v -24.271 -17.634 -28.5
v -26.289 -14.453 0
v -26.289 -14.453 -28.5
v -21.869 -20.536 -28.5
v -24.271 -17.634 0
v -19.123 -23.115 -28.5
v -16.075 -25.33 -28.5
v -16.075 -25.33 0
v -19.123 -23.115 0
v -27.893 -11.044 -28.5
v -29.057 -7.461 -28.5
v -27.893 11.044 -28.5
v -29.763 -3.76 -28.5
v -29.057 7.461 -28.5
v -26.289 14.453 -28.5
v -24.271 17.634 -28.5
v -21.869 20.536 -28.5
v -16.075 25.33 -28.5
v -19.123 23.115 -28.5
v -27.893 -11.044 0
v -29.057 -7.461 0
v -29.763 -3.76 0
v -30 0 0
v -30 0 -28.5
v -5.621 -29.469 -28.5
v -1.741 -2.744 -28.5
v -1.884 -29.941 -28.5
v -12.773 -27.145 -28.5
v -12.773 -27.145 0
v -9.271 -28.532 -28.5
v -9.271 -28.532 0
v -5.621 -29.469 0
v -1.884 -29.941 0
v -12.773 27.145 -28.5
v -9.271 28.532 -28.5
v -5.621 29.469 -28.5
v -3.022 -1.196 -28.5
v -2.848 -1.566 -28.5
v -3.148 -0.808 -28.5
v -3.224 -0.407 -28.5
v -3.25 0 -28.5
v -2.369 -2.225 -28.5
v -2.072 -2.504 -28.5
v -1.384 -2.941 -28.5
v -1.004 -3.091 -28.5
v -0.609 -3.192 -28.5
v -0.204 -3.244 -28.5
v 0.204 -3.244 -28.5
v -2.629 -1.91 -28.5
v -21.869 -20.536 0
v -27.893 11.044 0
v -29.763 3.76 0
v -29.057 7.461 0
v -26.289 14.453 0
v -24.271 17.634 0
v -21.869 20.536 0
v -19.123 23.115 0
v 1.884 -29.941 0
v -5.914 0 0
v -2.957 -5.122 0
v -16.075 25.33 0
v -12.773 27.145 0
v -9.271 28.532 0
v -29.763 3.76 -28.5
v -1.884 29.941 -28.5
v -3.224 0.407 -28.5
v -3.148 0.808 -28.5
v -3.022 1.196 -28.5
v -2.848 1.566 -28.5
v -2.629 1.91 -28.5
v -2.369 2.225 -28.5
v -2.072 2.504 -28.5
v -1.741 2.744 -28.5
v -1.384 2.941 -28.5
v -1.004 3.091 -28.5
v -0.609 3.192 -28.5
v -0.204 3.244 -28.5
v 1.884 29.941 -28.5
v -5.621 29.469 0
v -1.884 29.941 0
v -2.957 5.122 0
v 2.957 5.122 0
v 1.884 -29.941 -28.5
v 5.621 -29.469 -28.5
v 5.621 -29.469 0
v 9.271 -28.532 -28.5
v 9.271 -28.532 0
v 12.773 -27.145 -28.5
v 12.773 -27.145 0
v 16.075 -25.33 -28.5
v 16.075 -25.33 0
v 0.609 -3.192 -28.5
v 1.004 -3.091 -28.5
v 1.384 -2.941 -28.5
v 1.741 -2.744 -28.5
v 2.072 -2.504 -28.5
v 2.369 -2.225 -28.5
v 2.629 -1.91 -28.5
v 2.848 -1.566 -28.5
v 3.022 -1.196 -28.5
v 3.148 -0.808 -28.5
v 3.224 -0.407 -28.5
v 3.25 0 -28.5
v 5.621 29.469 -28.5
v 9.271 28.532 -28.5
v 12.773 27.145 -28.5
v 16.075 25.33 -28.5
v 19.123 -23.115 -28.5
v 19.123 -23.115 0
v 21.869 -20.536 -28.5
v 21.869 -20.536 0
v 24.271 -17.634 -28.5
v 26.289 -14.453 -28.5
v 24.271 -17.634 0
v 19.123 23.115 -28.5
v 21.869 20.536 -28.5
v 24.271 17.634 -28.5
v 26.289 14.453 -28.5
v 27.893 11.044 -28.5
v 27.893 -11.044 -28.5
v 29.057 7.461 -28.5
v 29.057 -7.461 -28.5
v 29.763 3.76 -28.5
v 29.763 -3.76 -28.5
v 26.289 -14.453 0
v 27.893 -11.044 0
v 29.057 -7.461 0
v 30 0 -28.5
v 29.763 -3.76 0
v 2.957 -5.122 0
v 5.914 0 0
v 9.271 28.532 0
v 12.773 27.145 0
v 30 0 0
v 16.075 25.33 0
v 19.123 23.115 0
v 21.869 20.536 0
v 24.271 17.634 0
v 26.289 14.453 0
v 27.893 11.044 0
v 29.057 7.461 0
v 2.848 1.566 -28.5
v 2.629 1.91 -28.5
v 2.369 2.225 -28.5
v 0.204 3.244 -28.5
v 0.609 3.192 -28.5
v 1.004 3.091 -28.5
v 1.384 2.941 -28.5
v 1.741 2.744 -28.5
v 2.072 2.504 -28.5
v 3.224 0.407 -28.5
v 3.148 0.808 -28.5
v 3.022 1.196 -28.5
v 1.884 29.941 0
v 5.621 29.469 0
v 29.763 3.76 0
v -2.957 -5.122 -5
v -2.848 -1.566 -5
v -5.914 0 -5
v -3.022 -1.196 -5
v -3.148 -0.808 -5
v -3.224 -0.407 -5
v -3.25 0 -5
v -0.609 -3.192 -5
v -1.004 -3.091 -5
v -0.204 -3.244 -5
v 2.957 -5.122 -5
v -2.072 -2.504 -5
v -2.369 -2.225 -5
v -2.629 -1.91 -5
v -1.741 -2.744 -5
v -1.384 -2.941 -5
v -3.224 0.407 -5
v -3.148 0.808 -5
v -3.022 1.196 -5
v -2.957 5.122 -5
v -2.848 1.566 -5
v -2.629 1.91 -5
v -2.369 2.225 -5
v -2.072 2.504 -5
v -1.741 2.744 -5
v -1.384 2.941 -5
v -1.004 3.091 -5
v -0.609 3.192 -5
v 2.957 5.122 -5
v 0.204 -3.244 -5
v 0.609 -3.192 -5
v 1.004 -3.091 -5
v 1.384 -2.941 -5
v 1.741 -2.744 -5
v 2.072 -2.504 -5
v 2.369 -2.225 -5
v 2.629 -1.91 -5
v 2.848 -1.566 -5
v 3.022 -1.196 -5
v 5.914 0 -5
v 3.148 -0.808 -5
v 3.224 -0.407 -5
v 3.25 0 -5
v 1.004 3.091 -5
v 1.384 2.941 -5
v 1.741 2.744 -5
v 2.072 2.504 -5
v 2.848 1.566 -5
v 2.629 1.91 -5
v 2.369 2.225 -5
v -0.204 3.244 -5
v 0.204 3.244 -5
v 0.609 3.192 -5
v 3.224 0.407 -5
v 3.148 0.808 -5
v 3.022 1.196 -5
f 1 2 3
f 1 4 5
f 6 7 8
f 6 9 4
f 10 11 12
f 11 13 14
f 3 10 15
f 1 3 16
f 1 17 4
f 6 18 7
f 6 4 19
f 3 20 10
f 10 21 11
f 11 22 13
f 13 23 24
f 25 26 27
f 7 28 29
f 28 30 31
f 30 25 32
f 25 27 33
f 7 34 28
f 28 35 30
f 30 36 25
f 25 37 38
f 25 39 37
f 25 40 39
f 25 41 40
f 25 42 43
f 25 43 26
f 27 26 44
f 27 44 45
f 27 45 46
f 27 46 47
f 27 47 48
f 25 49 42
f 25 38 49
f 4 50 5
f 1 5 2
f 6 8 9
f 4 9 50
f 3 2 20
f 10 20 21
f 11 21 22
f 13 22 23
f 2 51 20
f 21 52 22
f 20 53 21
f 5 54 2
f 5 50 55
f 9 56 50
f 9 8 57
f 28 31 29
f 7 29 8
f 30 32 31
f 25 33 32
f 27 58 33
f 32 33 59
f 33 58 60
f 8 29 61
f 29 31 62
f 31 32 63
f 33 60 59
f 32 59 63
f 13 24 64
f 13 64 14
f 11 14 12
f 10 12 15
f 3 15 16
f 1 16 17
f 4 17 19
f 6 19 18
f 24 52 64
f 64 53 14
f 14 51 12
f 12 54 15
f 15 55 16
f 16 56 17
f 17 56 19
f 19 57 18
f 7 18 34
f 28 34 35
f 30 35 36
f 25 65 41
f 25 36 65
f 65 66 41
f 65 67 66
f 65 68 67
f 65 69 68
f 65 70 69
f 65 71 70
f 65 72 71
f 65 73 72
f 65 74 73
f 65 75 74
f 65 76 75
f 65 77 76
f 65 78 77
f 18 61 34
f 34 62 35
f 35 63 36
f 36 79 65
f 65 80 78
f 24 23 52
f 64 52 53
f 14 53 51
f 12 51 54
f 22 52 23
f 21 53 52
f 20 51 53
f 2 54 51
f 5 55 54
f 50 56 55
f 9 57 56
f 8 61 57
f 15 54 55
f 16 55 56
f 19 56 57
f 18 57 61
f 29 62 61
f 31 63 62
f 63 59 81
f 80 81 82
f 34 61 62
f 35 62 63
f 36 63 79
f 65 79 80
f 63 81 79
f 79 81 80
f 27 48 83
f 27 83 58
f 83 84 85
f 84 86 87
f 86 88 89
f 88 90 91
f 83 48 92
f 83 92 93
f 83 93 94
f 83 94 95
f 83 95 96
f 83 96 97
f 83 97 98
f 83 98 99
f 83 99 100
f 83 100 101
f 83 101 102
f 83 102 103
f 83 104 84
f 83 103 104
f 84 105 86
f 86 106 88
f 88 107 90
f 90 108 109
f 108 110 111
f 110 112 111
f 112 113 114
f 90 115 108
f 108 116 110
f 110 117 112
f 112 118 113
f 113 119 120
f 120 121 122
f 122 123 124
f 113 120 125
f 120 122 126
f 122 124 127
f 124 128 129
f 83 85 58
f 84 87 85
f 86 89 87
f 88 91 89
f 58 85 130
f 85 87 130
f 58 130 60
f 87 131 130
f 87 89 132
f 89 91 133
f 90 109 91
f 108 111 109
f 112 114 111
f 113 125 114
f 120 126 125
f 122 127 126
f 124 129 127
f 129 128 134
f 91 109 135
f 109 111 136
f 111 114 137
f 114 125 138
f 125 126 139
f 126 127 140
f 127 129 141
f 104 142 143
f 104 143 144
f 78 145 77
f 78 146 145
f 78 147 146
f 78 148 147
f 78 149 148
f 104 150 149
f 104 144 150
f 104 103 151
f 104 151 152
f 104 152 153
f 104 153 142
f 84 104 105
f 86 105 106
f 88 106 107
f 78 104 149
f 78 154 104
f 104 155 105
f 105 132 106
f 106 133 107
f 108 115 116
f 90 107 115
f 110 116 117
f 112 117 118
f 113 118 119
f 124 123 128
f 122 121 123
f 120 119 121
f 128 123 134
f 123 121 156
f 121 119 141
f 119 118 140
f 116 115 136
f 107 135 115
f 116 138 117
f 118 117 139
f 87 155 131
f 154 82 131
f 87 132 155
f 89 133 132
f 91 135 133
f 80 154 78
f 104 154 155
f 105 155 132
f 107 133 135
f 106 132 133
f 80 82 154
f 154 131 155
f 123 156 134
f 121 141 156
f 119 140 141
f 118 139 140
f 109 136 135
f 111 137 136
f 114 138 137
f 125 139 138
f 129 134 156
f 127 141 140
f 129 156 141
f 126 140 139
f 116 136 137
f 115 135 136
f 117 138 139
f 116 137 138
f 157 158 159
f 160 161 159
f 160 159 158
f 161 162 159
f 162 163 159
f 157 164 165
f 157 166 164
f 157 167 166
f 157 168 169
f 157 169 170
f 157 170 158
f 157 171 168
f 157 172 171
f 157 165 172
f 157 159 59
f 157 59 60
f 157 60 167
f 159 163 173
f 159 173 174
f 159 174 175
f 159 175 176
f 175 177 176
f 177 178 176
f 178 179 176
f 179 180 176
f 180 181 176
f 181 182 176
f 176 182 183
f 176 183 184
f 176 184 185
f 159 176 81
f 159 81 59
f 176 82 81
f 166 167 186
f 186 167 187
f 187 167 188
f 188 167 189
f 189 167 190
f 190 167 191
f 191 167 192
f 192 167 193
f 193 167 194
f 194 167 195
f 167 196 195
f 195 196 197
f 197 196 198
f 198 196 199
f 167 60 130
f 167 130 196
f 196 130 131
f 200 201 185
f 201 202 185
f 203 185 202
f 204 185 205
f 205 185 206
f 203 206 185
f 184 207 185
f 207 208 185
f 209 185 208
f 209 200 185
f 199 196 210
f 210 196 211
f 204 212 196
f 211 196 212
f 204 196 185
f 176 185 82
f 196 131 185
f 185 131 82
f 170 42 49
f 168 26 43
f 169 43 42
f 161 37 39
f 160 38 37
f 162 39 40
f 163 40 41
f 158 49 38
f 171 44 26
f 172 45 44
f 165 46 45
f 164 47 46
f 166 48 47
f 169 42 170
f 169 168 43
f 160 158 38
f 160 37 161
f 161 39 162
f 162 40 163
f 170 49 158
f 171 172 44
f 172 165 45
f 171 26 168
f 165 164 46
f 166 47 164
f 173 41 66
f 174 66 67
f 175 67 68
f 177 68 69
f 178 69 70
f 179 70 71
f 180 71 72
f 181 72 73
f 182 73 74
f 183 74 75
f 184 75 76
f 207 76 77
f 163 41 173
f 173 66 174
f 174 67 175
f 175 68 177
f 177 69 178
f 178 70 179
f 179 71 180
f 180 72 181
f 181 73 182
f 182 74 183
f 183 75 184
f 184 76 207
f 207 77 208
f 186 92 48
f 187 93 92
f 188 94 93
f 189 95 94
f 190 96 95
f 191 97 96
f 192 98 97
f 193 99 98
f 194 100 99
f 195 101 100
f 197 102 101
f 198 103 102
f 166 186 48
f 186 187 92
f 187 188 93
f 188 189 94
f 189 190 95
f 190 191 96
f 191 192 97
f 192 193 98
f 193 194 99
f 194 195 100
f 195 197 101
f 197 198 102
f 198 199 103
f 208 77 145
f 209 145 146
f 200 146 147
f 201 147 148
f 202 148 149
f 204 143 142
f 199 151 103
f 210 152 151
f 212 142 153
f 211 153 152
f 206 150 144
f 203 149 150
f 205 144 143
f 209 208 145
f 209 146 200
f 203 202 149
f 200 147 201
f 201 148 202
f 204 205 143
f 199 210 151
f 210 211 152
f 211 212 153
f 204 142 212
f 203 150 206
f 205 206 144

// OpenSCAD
$fn = 50;


difference() {
	union() {
		translate(v = [0, 0, -28.5000000000]) {
			cylinder(h = 28.5000000000, r = 30.0000000000);
		}
		#translate(v = [0, 0, -30.0000000000]) {
			cylinder(h = 30, r = 2.8750000000);
		}
	}
	union() {
		translate(v = [0, 0, 0]) {
			rotate(a = [0, 0, 0]) {
				difference() {
					union() {
						translate(v = [0, 0, -5]) {
							linear_extrude(height = 5) {
								polygon(points = [[5.9142500000, 0.0000000000], [2.9571250000, 5.1218907443], [-2.9571250000, 5.1218907443], [-5.9142500000, 0.0000000000], [-2.9571250000, -5.1218907443], [2.9571250000, -5.1218907443]]);
							}
						}
					}
					union();
				}
			}
		}
		#translate(v = [0, 0, -100.0000000000]) {
			cylinder(h = 200, r = 3.2500000000);
		}
	}
}
